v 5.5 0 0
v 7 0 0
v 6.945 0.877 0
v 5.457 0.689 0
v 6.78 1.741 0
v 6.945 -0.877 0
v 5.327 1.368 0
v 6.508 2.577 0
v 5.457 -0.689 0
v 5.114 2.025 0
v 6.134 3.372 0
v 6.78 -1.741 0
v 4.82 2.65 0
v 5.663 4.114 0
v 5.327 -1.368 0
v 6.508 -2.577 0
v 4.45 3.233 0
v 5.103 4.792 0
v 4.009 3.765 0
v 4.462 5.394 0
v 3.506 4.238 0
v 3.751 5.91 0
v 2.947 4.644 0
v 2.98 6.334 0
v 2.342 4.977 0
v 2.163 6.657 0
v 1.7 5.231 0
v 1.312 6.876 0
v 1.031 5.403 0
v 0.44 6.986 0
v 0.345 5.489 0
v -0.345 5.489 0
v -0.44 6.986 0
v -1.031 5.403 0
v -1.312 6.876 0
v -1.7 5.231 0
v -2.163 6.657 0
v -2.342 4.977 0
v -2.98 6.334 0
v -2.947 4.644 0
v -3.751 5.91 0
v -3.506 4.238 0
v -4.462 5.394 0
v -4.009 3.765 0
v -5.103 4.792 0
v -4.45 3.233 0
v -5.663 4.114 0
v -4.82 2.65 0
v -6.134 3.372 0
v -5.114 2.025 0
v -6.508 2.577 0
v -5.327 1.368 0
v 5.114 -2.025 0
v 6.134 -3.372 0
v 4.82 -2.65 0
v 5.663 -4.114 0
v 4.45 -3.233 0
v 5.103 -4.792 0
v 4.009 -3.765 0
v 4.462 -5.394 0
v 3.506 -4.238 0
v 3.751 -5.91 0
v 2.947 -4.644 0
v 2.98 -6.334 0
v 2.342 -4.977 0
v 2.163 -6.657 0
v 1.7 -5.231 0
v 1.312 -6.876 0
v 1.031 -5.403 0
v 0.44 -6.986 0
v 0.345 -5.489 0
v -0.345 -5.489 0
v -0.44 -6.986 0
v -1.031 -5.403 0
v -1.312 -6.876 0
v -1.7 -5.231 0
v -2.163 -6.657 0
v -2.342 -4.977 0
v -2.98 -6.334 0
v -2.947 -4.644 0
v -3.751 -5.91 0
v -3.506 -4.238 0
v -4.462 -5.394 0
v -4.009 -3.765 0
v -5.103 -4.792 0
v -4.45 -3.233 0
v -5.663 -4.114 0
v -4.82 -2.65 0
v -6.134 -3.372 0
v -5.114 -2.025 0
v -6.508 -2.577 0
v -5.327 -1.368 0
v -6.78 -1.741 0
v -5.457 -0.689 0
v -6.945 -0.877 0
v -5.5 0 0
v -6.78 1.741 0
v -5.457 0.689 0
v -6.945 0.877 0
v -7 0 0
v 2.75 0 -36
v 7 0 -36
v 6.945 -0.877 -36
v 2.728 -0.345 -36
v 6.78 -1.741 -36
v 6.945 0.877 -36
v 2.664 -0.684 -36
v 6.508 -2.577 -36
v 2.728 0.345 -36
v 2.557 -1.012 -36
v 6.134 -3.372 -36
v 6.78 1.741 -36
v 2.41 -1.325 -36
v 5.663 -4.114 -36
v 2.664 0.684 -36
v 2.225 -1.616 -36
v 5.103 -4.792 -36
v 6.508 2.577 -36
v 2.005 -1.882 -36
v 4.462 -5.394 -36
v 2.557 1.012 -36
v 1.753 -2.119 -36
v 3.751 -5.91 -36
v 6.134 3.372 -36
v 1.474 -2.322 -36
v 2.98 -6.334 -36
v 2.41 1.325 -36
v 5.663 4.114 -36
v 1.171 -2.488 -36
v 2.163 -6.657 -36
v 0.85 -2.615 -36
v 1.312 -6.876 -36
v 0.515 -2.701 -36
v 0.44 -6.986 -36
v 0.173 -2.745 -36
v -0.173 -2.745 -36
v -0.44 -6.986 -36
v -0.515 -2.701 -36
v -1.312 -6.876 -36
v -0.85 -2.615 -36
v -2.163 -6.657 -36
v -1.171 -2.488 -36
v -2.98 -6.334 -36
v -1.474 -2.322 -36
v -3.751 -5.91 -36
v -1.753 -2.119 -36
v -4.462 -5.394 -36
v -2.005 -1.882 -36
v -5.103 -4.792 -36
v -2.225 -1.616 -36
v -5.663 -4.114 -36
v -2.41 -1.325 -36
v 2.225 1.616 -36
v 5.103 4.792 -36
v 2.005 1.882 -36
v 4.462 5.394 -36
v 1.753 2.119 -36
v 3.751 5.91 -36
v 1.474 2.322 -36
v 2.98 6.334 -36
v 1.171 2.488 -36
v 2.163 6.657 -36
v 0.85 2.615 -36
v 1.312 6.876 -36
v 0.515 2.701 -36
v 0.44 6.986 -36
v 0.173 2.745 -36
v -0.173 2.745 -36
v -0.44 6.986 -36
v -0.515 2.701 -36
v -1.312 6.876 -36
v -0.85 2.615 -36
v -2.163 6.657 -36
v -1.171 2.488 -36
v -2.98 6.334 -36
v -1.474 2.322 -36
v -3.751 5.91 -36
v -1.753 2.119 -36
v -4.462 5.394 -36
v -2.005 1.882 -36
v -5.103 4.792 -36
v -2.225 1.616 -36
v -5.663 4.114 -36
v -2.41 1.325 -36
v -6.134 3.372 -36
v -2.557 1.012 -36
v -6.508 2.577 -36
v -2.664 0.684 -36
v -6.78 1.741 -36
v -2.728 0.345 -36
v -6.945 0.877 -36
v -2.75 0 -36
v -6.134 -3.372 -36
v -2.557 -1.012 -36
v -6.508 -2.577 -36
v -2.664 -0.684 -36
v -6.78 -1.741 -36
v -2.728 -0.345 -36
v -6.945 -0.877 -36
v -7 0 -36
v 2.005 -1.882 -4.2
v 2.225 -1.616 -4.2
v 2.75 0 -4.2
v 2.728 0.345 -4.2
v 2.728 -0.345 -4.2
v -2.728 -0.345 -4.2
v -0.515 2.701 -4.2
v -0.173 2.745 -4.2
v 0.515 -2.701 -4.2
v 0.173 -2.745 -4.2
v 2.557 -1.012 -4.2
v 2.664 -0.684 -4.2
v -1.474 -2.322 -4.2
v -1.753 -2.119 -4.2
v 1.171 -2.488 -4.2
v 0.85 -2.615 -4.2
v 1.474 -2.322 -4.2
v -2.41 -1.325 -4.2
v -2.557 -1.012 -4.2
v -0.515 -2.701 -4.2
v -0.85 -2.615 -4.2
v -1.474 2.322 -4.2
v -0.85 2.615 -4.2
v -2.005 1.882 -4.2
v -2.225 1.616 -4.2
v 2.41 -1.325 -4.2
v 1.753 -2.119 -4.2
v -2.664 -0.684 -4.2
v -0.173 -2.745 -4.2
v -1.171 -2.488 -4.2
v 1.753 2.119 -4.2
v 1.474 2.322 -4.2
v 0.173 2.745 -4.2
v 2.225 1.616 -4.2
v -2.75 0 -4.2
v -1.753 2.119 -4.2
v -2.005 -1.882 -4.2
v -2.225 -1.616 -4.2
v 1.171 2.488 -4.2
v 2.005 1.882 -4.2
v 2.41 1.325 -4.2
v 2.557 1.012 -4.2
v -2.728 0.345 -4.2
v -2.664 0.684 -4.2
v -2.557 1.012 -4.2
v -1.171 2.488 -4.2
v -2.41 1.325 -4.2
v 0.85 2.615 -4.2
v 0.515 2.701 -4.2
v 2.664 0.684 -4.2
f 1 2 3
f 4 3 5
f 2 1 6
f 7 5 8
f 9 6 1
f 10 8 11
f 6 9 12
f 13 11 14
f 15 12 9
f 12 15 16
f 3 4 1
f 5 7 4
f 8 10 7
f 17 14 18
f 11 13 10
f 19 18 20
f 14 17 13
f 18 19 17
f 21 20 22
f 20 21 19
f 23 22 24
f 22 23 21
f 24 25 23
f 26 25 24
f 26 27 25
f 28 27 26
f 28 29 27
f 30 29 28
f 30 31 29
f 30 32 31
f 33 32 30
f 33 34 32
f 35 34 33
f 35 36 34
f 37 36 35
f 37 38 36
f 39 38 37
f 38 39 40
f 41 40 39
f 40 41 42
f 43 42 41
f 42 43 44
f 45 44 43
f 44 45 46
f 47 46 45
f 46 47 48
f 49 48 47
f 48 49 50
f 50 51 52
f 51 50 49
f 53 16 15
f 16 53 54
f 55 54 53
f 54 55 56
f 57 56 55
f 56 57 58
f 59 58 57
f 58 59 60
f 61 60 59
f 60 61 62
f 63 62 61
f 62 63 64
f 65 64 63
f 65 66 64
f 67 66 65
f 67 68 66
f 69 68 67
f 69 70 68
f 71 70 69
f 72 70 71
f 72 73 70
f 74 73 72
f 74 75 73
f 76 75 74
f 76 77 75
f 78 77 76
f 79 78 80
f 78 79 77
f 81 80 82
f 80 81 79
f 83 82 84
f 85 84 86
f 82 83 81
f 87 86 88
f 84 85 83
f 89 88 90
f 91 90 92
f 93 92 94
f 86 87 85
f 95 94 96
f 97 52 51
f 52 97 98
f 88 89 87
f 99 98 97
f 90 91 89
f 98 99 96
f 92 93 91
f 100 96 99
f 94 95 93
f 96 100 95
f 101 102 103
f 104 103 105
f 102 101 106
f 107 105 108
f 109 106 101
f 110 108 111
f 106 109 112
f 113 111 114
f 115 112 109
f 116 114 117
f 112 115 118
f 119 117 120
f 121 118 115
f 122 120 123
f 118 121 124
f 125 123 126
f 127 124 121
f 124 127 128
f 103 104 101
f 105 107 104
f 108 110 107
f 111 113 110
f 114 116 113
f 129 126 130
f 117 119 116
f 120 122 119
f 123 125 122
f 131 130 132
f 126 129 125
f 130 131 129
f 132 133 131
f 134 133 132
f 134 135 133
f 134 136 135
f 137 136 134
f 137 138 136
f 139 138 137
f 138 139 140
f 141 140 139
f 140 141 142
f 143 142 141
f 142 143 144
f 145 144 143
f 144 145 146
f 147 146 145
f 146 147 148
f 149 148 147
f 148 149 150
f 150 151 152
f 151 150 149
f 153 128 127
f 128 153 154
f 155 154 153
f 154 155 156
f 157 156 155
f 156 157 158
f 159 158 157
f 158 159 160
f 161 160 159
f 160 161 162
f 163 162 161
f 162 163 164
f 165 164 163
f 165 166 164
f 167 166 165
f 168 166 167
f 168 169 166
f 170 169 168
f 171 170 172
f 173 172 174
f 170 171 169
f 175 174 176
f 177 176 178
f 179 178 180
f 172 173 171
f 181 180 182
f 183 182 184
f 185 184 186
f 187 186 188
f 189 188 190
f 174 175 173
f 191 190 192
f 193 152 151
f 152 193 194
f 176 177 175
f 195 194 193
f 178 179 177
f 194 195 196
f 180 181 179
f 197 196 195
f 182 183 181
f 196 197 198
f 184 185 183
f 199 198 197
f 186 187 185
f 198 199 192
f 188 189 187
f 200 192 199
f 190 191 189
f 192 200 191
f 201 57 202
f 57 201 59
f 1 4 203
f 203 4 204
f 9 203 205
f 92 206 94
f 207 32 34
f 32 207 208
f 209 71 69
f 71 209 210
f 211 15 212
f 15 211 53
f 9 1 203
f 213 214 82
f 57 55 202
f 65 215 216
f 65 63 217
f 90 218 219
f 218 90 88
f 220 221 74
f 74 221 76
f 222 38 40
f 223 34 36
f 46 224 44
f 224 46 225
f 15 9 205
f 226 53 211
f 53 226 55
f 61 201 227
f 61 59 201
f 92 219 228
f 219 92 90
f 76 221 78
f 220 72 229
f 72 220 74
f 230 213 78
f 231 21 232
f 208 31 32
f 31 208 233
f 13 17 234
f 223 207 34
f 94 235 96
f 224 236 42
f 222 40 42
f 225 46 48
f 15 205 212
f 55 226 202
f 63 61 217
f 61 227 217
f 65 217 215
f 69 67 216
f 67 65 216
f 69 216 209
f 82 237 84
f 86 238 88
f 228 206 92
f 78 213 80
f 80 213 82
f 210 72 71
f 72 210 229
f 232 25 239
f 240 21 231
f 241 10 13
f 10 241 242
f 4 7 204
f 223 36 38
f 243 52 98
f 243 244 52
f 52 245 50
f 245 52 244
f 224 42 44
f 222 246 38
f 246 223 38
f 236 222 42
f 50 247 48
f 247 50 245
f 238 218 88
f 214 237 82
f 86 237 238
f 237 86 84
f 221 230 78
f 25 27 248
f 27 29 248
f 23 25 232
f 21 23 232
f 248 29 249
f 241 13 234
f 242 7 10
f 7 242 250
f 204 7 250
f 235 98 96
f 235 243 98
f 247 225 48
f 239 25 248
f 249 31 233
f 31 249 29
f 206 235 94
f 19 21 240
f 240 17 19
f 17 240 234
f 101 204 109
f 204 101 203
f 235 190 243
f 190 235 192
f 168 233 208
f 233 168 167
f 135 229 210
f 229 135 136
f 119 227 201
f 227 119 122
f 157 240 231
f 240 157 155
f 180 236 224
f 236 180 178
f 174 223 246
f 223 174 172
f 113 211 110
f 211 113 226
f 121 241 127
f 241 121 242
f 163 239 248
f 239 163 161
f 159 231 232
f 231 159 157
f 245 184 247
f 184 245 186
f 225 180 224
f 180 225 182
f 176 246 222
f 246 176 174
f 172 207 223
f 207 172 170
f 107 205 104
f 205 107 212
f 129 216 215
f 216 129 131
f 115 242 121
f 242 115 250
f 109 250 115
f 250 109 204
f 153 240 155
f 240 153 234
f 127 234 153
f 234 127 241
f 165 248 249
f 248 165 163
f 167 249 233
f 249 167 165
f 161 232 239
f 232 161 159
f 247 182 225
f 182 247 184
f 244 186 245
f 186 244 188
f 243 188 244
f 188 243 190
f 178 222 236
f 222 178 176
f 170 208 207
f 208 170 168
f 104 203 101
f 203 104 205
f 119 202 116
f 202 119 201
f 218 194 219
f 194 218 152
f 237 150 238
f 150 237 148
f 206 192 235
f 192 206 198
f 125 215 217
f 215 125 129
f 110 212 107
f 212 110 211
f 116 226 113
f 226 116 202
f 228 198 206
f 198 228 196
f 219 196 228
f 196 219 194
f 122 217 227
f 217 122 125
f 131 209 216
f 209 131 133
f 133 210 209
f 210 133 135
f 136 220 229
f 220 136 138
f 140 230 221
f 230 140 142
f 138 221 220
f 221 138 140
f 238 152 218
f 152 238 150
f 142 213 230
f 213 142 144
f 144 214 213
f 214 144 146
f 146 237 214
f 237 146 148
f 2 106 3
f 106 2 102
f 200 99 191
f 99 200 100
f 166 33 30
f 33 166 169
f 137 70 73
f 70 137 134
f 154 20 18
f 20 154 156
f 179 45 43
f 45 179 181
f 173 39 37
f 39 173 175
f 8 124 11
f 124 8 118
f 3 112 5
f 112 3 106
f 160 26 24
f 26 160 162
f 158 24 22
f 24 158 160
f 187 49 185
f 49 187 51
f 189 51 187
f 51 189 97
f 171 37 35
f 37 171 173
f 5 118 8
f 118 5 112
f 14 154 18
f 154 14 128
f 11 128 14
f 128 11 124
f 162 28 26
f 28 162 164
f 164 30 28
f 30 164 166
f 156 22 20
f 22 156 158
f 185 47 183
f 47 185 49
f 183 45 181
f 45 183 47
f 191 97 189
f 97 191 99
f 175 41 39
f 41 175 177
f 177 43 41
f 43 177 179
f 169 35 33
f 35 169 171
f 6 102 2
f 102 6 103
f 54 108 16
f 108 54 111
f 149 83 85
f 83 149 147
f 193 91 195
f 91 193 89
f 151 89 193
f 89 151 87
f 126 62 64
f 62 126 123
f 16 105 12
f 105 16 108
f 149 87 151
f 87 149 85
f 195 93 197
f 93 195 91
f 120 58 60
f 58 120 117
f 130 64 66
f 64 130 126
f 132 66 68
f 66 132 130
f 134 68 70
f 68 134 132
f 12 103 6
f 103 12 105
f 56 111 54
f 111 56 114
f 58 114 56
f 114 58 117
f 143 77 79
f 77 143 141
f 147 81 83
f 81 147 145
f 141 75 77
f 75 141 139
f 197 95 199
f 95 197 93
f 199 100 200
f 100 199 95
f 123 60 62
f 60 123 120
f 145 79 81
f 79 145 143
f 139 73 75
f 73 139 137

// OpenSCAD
$fn = 50;


difference() {
	union() {
		translate(v = [0, 0, -36.0000000000]) {
			cylinder(h = 36, r = 7.0000000000);
		}
		cylinder(h = 0, r = 10.0000000000);
	}
	union() {
		translate(v = [0, 0, 0]) {
			rotate(a = [0, 0, 0]) {
				difference() {
					union() {
						#translate(v = [0, 0, -36.0000000000]) {
							cylinder(h = 36, r = 2.2500000000);
						}
						#translate(v = [0, 0, -4.2000000000]) {
							cylinder(h = 4.2000000000, r = 7.0000000000, r1 = 2.7500000000, r2 = 5.5000000000);
						}
						#translate(v = [0, 0, -36.0000000000]) {
							cylinder(h = 36, r = 2.7500000000);
						}
						#translate(v = [0, 0, -36.0000000000]) {
							cylinder(h = 36, r = 2.2500000000);
						}
					}
					union();
				}
			}
		}
	}
}
